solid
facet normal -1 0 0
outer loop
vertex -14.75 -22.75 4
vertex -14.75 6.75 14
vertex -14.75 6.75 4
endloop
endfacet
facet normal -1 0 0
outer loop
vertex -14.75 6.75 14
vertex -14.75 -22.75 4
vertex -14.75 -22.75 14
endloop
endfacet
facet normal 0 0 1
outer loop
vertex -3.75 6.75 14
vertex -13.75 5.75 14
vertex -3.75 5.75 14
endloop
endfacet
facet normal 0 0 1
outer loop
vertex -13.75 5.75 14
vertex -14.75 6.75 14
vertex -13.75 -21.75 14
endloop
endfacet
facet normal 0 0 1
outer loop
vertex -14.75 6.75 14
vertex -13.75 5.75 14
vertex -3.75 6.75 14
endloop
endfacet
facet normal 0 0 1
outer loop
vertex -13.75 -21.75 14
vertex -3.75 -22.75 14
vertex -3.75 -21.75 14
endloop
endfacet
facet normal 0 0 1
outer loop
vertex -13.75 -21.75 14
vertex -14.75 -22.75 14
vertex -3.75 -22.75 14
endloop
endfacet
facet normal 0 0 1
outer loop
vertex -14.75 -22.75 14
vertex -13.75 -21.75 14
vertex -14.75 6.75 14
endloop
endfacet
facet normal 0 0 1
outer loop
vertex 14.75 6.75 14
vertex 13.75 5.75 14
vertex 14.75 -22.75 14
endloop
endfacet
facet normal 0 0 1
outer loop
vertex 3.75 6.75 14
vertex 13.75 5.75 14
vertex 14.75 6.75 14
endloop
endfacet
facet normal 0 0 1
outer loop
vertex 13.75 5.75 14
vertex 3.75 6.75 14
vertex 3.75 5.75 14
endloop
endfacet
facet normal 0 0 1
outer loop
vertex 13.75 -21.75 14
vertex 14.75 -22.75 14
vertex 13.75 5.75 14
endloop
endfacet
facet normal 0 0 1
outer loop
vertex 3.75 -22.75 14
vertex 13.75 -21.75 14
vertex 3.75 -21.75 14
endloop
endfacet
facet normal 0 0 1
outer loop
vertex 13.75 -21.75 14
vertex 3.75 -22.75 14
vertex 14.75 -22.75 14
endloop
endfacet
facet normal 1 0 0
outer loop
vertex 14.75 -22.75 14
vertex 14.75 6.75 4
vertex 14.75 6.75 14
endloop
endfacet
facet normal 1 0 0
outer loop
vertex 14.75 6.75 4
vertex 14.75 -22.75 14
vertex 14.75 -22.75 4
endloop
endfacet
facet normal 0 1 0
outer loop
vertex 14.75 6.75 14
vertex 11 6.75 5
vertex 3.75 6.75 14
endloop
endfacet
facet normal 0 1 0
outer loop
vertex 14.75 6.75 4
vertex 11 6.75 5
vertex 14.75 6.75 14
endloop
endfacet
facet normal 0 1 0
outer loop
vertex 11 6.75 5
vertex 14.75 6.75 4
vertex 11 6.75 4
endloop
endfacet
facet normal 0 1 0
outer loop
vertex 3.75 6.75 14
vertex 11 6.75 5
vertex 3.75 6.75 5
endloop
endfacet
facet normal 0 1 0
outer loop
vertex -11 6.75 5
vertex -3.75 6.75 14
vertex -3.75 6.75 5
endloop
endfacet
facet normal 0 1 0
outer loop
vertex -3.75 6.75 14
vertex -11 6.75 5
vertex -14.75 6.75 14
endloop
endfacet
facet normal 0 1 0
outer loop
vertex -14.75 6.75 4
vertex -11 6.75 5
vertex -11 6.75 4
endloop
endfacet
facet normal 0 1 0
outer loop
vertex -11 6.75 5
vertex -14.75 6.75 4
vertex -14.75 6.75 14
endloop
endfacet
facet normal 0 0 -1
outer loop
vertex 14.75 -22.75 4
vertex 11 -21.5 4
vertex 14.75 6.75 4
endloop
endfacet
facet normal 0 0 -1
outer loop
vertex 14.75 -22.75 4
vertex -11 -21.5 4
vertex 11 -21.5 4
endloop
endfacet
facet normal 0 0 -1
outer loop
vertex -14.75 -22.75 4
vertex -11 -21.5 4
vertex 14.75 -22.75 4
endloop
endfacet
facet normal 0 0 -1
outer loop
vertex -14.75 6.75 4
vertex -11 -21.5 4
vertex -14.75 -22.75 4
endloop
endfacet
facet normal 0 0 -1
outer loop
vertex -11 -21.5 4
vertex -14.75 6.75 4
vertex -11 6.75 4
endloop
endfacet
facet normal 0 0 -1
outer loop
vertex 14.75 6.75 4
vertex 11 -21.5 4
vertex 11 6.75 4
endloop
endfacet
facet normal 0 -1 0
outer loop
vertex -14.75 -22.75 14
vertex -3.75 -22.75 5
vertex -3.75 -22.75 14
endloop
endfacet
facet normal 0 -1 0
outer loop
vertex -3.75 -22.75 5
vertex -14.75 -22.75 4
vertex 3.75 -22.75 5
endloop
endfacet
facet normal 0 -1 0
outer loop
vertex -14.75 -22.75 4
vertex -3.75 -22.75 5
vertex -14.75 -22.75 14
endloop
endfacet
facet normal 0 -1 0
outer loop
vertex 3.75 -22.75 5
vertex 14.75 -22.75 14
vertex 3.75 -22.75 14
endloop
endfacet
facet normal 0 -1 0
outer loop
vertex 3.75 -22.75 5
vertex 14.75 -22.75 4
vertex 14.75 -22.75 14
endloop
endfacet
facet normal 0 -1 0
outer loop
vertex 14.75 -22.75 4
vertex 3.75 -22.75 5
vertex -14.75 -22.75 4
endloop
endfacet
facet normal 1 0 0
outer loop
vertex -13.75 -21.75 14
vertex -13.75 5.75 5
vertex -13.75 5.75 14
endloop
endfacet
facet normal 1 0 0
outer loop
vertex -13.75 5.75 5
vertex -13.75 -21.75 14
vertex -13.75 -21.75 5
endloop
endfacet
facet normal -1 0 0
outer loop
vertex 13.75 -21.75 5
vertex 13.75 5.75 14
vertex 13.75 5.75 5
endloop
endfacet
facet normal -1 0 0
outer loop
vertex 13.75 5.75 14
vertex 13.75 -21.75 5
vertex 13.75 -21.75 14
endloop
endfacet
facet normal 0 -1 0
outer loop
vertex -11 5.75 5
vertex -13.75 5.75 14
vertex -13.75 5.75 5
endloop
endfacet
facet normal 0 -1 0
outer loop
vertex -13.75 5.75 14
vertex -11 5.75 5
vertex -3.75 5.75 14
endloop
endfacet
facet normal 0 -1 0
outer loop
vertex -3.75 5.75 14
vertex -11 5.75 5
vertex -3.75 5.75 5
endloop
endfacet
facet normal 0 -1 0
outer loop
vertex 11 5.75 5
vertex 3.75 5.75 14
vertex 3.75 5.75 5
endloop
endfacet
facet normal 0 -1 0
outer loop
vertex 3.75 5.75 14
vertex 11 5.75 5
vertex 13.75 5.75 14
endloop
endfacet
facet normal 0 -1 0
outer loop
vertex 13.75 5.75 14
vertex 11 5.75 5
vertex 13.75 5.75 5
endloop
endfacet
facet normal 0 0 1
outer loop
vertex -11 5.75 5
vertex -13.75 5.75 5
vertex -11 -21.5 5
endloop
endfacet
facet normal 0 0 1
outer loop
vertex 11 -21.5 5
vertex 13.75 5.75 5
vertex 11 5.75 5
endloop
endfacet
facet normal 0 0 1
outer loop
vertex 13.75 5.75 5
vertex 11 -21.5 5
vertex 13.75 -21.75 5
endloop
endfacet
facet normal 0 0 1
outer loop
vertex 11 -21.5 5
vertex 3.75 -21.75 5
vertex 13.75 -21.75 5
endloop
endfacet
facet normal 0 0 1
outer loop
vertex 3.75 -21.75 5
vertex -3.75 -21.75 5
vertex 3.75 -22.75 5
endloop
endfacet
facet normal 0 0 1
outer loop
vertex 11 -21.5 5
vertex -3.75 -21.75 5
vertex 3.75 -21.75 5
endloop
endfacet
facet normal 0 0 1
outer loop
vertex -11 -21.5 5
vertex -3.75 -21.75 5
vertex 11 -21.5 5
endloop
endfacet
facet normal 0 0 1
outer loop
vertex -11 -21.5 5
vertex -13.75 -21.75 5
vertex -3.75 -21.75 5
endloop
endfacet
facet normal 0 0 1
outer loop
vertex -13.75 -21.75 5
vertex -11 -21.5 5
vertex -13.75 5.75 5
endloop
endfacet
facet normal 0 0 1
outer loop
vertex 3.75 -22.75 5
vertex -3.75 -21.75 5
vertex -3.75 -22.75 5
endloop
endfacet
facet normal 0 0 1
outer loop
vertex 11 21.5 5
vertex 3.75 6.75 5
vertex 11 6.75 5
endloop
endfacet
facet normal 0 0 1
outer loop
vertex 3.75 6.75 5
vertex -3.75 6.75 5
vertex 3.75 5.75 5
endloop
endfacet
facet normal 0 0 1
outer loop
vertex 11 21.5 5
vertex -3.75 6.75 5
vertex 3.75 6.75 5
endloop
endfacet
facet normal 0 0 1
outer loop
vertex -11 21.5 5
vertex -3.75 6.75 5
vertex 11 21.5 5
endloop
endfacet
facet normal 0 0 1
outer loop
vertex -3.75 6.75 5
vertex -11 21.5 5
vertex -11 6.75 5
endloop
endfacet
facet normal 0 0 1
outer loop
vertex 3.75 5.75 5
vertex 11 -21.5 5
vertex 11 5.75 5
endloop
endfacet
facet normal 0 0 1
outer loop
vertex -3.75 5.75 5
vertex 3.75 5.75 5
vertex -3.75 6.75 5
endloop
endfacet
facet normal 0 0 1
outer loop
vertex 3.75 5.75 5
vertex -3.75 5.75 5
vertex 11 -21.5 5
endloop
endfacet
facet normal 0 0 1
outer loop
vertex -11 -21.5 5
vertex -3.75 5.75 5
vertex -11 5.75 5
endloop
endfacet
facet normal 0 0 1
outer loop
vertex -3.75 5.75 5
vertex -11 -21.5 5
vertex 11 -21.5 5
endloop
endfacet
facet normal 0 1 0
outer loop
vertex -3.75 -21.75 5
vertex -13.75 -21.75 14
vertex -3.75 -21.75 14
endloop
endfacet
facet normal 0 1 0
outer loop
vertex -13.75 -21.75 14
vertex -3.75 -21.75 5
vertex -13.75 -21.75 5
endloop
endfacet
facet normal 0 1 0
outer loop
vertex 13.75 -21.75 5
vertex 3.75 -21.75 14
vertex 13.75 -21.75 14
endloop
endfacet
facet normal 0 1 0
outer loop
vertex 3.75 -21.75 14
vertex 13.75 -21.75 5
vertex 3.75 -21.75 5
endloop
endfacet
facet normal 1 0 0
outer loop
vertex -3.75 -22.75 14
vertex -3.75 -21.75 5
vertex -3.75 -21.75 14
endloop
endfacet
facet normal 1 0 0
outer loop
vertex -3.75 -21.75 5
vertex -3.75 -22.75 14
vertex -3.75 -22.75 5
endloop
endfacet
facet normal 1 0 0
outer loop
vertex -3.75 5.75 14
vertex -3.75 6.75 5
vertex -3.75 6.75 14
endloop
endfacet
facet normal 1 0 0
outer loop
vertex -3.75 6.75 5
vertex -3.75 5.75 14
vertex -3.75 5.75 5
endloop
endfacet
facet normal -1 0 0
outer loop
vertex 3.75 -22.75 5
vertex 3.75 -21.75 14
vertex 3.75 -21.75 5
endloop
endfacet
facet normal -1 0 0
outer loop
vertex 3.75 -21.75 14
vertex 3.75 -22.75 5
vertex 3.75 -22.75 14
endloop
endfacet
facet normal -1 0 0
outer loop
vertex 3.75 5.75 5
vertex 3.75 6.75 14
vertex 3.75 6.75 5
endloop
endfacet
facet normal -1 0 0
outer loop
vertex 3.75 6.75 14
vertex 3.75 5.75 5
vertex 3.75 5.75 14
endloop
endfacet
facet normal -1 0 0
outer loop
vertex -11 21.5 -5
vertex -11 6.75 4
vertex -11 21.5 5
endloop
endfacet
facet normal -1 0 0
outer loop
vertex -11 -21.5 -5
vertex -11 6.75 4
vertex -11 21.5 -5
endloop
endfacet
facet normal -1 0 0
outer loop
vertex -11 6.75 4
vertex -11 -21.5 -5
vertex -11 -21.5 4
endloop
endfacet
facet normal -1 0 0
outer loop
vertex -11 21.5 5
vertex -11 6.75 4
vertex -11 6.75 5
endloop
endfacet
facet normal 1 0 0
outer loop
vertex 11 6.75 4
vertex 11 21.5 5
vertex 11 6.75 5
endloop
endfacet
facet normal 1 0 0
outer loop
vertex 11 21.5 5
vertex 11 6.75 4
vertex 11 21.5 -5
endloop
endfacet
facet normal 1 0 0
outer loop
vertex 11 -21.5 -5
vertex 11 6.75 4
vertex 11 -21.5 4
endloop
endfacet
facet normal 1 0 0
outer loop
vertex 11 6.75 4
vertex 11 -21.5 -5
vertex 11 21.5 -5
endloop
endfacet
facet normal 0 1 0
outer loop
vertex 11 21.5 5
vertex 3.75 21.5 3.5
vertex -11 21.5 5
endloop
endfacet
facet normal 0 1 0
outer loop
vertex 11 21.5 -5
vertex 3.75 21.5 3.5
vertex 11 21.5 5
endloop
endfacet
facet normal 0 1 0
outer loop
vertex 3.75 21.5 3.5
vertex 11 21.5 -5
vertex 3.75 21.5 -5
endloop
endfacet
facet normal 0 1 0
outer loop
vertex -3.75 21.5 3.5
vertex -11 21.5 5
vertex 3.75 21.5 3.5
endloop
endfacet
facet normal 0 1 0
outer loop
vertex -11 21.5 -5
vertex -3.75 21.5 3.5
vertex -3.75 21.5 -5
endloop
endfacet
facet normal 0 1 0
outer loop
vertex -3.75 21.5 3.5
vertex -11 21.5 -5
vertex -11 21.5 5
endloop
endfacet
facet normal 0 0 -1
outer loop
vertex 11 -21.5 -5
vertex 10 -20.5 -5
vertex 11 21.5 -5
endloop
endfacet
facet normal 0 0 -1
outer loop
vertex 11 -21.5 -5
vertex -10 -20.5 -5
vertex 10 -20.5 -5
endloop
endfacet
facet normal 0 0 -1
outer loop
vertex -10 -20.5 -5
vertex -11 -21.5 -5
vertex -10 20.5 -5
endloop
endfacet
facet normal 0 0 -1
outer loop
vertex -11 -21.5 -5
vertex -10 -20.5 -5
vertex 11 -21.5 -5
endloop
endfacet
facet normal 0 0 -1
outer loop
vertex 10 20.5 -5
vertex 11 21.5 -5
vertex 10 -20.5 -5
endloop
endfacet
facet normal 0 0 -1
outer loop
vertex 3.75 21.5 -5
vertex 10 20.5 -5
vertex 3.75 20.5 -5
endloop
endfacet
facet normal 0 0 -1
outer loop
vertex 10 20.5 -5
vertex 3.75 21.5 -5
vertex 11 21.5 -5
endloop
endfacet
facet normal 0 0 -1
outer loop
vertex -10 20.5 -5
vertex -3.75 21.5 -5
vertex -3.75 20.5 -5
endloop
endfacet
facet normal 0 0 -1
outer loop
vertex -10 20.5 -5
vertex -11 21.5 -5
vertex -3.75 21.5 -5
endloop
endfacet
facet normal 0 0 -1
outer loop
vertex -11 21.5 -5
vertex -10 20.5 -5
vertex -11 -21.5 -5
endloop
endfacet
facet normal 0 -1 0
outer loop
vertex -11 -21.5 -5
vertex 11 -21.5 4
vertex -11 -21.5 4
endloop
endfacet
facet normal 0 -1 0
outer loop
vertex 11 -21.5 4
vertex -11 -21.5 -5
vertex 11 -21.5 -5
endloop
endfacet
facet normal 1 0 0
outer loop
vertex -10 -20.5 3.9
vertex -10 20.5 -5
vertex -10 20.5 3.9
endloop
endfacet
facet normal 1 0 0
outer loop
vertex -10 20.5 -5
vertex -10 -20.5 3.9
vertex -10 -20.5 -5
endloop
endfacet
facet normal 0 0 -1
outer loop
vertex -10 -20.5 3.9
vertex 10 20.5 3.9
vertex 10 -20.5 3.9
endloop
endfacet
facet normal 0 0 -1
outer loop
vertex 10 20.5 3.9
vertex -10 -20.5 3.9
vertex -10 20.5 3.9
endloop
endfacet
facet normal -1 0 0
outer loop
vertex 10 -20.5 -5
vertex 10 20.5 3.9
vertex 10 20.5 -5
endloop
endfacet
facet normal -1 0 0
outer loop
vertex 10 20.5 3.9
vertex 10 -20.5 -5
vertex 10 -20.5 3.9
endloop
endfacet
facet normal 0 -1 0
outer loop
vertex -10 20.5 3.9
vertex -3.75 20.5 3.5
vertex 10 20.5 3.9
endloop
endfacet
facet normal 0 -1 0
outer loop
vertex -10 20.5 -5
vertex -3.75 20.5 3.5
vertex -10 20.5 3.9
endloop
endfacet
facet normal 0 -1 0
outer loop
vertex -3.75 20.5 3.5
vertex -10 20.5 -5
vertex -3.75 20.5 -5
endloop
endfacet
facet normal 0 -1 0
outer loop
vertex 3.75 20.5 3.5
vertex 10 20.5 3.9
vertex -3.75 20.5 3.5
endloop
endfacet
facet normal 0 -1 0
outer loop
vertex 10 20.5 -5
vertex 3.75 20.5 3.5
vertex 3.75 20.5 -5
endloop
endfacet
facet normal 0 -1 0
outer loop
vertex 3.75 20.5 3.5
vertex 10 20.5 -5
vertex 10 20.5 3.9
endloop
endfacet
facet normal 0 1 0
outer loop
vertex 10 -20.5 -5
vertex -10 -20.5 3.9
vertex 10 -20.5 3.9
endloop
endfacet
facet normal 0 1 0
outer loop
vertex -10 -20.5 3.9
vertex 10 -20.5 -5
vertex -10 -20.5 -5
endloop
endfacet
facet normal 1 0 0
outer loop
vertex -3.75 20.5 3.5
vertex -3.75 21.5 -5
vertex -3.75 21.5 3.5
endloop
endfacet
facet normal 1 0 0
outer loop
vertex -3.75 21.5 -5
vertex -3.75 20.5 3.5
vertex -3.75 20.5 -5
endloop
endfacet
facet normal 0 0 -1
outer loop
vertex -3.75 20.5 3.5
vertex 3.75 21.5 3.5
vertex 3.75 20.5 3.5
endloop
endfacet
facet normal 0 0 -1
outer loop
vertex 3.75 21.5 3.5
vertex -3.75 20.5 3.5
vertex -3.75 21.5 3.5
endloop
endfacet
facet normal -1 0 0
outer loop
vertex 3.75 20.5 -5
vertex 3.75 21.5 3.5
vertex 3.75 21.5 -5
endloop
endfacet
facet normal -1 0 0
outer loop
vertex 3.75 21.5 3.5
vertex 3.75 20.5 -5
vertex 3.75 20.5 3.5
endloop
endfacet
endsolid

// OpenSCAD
union() {
    difference() {
        translate([0, -8, 9]) cube([29.5, 29.5, 10], center=true);
        translate([0, -8, 10]) cube([27.5, 27.5, 10], center=true);
        translate([0, -8, 10]) cube([7.5, 50, 10], center=true);
    }

    difference() {
        cube([22, 43, 10], center=true);
        translate([0, 0, -1.1]) cube([20, 41, 10], center=true);
        translate([0, 30, -2.5]) cube([7.5, 40, 12], center=true);
    }
}
